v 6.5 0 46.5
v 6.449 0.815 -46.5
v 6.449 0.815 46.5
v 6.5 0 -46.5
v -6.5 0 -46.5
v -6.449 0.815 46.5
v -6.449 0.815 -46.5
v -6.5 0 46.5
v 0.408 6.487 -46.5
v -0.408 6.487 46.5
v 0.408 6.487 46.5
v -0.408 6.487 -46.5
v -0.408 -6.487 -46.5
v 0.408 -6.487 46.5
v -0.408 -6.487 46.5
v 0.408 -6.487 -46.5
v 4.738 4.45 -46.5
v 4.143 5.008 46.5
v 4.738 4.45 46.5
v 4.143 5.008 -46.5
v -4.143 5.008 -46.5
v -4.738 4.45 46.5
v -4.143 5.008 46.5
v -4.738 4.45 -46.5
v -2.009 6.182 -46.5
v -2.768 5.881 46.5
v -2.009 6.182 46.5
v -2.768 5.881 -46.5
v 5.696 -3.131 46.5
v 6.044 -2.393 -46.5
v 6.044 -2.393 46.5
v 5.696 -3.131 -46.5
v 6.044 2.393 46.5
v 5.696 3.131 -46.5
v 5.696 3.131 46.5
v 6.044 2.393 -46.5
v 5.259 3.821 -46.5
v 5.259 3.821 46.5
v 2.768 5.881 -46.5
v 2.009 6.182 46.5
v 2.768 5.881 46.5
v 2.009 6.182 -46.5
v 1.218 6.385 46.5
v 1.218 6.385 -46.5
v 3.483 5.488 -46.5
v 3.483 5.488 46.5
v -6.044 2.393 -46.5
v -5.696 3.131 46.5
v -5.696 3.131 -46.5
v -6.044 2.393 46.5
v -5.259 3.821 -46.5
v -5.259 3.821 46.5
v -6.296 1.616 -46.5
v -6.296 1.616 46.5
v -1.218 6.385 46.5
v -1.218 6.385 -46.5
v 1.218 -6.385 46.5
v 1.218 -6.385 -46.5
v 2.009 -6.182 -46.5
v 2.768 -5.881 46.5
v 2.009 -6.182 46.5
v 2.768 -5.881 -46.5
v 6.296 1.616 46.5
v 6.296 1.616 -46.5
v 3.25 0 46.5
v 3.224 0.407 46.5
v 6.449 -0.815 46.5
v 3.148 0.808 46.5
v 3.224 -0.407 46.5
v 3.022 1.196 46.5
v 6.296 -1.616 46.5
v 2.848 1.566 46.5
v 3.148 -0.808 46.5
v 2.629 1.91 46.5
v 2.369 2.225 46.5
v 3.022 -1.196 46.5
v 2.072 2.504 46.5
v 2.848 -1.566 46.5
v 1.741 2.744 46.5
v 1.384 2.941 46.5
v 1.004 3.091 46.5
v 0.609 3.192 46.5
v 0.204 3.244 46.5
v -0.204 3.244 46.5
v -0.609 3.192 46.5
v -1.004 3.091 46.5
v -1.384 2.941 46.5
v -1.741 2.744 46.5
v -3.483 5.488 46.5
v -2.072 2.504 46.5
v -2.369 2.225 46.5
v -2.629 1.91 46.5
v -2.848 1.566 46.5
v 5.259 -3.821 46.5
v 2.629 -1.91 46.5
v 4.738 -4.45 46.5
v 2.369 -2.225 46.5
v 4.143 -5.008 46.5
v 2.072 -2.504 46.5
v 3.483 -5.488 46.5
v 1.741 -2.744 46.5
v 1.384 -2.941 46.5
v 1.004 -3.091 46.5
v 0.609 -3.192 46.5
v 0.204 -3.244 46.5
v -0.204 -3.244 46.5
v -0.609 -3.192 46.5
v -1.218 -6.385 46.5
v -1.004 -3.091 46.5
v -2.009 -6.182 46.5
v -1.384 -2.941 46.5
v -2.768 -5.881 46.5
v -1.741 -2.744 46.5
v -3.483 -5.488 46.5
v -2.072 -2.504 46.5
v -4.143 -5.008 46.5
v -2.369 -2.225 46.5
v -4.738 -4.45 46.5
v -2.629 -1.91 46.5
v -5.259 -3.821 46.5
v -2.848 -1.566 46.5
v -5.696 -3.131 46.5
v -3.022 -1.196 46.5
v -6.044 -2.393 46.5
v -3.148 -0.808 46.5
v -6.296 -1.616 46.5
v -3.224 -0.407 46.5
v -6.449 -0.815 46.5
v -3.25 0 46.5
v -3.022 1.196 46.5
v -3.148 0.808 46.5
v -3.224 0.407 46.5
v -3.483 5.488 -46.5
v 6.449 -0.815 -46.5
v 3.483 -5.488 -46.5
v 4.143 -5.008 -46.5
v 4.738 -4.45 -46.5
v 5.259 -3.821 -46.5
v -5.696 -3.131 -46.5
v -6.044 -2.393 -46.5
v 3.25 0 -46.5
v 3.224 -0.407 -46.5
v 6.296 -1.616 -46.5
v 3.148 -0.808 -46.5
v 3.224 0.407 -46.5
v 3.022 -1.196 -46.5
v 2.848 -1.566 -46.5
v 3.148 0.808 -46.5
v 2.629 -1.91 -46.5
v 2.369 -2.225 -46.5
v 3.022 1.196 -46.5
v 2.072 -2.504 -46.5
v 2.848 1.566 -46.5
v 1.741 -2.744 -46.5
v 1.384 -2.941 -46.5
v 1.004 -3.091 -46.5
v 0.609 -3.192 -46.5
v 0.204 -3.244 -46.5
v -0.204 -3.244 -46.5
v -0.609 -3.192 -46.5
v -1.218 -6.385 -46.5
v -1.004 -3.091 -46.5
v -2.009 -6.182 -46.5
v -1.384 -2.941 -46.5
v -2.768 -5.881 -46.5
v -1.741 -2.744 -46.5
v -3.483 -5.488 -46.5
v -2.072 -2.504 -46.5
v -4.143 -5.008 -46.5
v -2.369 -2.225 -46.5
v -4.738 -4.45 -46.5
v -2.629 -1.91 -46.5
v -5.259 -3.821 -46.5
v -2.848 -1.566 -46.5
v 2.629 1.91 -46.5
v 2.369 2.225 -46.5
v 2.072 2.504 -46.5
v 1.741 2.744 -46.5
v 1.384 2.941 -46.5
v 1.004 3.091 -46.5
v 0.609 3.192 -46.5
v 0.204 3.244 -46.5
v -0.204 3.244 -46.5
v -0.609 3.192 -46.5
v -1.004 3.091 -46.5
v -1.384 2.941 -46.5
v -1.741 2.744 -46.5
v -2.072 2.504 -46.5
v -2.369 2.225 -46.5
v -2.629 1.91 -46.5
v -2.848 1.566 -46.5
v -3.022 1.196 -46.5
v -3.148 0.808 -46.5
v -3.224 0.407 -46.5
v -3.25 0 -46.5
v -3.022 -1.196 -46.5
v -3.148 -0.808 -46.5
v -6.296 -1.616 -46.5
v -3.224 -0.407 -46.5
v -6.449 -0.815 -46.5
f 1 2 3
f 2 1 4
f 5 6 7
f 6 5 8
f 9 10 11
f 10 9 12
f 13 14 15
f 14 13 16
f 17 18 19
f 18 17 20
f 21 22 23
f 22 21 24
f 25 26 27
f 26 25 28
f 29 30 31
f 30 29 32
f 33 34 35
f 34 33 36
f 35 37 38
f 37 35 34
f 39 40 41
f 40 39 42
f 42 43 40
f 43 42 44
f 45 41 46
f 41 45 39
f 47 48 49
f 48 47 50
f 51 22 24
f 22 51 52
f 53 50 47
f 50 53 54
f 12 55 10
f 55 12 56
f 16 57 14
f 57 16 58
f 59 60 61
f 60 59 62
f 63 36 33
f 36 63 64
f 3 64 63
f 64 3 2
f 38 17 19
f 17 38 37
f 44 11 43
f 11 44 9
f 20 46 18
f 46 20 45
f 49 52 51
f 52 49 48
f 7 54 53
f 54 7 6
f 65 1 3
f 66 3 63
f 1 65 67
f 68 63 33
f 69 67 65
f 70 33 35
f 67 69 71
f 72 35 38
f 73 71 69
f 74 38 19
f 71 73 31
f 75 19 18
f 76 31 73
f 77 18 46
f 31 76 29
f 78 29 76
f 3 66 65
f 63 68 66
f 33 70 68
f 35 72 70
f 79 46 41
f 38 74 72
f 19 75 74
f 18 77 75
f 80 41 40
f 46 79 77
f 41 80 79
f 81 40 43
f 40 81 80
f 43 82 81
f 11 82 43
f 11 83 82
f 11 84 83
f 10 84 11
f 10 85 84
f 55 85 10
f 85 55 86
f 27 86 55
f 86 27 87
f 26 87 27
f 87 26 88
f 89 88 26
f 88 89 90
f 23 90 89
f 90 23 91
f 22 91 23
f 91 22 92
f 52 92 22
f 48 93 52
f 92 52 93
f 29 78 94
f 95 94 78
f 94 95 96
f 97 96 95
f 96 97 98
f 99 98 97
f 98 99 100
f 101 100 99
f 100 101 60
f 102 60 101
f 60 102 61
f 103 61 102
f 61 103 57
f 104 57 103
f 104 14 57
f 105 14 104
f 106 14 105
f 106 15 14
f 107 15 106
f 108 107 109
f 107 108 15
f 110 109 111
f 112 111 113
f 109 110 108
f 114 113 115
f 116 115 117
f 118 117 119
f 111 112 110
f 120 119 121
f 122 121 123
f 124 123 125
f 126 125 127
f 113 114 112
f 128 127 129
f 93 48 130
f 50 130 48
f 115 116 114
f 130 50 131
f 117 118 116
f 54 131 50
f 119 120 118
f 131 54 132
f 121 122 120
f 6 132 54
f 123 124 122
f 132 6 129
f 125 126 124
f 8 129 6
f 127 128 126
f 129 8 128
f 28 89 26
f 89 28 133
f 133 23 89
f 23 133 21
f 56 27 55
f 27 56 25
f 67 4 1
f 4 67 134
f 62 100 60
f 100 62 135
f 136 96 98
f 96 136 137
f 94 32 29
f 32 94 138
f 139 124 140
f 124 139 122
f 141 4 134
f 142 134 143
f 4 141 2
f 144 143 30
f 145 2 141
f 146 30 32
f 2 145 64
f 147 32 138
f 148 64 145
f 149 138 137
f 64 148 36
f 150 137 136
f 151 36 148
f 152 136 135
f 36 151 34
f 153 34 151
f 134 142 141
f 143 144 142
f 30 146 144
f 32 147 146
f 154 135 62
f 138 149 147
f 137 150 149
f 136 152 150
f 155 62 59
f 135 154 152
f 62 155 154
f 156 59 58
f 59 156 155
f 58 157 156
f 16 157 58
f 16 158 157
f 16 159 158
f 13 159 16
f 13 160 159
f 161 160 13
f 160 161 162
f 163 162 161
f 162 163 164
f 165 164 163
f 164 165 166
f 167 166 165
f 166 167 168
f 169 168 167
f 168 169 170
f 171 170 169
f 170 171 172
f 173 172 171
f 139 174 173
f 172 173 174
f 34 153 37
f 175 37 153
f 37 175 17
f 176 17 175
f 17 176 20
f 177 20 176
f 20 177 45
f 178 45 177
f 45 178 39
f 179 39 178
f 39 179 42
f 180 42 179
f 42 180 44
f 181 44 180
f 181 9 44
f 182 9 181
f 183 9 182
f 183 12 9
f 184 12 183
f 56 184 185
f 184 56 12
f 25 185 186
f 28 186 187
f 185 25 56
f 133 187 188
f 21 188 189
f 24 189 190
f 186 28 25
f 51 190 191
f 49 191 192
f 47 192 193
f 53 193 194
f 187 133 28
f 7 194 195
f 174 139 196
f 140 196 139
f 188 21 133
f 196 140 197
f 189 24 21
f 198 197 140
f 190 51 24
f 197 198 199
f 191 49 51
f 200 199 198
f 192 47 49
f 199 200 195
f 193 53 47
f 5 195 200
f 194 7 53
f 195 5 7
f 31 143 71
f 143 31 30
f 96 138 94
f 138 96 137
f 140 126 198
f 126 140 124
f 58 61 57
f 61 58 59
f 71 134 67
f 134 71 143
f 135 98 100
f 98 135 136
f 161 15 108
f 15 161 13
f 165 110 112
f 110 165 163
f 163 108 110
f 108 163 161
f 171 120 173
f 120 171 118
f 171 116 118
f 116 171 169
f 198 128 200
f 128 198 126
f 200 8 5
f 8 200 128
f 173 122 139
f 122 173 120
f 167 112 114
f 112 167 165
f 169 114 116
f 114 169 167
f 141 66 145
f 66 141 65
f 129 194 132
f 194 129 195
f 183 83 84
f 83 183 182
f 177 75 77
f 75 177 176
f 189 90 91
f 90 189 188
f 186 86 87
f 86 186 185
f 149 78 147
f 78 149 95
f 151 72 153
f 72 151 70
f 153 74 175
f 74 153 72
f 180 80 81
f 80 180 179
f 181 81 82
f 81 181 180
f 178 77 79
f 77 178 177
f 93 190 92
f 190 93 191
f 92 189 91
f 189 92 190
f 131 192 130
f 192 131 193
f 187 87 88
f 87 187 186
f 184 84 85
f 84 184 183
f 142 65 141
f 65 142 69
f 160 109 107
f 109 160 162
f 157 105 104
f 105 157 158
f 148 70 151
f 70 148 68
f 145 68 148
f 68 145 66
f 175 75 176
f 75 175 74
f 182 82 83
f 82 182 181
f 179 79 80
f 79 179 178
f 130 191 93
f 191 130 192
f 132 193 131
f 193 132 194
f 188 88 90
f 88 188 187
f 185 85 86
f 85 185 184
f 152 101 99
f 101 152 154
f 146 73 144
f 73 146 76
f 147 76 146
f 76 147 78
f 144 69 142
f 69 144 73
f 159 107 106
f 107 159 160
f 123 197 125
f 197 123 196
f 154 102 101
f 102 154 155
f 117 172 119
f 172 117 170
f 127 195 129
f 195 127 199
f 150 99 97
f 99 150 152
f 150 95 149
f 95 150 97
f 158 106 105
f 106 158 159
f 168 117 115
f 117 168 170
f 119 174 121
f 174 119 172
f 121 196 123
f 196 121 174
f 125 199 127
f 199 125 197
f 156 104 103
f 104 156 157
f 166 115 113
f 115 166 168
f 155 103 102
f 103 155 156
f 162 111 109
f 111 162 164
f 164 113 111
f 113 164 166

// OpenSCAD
$fn = 50;


difference() {
	union() {
		translate(v = [0, 0, -46.5000000000]) {
			cylinder(h = 93, r = 6.5000000000);
		}
	}
	union() {
		translate(v = [0, 0, -100.0000000000]) {
			cylinder(h = 200, r = 3.2500000000);
		}
	}
}
